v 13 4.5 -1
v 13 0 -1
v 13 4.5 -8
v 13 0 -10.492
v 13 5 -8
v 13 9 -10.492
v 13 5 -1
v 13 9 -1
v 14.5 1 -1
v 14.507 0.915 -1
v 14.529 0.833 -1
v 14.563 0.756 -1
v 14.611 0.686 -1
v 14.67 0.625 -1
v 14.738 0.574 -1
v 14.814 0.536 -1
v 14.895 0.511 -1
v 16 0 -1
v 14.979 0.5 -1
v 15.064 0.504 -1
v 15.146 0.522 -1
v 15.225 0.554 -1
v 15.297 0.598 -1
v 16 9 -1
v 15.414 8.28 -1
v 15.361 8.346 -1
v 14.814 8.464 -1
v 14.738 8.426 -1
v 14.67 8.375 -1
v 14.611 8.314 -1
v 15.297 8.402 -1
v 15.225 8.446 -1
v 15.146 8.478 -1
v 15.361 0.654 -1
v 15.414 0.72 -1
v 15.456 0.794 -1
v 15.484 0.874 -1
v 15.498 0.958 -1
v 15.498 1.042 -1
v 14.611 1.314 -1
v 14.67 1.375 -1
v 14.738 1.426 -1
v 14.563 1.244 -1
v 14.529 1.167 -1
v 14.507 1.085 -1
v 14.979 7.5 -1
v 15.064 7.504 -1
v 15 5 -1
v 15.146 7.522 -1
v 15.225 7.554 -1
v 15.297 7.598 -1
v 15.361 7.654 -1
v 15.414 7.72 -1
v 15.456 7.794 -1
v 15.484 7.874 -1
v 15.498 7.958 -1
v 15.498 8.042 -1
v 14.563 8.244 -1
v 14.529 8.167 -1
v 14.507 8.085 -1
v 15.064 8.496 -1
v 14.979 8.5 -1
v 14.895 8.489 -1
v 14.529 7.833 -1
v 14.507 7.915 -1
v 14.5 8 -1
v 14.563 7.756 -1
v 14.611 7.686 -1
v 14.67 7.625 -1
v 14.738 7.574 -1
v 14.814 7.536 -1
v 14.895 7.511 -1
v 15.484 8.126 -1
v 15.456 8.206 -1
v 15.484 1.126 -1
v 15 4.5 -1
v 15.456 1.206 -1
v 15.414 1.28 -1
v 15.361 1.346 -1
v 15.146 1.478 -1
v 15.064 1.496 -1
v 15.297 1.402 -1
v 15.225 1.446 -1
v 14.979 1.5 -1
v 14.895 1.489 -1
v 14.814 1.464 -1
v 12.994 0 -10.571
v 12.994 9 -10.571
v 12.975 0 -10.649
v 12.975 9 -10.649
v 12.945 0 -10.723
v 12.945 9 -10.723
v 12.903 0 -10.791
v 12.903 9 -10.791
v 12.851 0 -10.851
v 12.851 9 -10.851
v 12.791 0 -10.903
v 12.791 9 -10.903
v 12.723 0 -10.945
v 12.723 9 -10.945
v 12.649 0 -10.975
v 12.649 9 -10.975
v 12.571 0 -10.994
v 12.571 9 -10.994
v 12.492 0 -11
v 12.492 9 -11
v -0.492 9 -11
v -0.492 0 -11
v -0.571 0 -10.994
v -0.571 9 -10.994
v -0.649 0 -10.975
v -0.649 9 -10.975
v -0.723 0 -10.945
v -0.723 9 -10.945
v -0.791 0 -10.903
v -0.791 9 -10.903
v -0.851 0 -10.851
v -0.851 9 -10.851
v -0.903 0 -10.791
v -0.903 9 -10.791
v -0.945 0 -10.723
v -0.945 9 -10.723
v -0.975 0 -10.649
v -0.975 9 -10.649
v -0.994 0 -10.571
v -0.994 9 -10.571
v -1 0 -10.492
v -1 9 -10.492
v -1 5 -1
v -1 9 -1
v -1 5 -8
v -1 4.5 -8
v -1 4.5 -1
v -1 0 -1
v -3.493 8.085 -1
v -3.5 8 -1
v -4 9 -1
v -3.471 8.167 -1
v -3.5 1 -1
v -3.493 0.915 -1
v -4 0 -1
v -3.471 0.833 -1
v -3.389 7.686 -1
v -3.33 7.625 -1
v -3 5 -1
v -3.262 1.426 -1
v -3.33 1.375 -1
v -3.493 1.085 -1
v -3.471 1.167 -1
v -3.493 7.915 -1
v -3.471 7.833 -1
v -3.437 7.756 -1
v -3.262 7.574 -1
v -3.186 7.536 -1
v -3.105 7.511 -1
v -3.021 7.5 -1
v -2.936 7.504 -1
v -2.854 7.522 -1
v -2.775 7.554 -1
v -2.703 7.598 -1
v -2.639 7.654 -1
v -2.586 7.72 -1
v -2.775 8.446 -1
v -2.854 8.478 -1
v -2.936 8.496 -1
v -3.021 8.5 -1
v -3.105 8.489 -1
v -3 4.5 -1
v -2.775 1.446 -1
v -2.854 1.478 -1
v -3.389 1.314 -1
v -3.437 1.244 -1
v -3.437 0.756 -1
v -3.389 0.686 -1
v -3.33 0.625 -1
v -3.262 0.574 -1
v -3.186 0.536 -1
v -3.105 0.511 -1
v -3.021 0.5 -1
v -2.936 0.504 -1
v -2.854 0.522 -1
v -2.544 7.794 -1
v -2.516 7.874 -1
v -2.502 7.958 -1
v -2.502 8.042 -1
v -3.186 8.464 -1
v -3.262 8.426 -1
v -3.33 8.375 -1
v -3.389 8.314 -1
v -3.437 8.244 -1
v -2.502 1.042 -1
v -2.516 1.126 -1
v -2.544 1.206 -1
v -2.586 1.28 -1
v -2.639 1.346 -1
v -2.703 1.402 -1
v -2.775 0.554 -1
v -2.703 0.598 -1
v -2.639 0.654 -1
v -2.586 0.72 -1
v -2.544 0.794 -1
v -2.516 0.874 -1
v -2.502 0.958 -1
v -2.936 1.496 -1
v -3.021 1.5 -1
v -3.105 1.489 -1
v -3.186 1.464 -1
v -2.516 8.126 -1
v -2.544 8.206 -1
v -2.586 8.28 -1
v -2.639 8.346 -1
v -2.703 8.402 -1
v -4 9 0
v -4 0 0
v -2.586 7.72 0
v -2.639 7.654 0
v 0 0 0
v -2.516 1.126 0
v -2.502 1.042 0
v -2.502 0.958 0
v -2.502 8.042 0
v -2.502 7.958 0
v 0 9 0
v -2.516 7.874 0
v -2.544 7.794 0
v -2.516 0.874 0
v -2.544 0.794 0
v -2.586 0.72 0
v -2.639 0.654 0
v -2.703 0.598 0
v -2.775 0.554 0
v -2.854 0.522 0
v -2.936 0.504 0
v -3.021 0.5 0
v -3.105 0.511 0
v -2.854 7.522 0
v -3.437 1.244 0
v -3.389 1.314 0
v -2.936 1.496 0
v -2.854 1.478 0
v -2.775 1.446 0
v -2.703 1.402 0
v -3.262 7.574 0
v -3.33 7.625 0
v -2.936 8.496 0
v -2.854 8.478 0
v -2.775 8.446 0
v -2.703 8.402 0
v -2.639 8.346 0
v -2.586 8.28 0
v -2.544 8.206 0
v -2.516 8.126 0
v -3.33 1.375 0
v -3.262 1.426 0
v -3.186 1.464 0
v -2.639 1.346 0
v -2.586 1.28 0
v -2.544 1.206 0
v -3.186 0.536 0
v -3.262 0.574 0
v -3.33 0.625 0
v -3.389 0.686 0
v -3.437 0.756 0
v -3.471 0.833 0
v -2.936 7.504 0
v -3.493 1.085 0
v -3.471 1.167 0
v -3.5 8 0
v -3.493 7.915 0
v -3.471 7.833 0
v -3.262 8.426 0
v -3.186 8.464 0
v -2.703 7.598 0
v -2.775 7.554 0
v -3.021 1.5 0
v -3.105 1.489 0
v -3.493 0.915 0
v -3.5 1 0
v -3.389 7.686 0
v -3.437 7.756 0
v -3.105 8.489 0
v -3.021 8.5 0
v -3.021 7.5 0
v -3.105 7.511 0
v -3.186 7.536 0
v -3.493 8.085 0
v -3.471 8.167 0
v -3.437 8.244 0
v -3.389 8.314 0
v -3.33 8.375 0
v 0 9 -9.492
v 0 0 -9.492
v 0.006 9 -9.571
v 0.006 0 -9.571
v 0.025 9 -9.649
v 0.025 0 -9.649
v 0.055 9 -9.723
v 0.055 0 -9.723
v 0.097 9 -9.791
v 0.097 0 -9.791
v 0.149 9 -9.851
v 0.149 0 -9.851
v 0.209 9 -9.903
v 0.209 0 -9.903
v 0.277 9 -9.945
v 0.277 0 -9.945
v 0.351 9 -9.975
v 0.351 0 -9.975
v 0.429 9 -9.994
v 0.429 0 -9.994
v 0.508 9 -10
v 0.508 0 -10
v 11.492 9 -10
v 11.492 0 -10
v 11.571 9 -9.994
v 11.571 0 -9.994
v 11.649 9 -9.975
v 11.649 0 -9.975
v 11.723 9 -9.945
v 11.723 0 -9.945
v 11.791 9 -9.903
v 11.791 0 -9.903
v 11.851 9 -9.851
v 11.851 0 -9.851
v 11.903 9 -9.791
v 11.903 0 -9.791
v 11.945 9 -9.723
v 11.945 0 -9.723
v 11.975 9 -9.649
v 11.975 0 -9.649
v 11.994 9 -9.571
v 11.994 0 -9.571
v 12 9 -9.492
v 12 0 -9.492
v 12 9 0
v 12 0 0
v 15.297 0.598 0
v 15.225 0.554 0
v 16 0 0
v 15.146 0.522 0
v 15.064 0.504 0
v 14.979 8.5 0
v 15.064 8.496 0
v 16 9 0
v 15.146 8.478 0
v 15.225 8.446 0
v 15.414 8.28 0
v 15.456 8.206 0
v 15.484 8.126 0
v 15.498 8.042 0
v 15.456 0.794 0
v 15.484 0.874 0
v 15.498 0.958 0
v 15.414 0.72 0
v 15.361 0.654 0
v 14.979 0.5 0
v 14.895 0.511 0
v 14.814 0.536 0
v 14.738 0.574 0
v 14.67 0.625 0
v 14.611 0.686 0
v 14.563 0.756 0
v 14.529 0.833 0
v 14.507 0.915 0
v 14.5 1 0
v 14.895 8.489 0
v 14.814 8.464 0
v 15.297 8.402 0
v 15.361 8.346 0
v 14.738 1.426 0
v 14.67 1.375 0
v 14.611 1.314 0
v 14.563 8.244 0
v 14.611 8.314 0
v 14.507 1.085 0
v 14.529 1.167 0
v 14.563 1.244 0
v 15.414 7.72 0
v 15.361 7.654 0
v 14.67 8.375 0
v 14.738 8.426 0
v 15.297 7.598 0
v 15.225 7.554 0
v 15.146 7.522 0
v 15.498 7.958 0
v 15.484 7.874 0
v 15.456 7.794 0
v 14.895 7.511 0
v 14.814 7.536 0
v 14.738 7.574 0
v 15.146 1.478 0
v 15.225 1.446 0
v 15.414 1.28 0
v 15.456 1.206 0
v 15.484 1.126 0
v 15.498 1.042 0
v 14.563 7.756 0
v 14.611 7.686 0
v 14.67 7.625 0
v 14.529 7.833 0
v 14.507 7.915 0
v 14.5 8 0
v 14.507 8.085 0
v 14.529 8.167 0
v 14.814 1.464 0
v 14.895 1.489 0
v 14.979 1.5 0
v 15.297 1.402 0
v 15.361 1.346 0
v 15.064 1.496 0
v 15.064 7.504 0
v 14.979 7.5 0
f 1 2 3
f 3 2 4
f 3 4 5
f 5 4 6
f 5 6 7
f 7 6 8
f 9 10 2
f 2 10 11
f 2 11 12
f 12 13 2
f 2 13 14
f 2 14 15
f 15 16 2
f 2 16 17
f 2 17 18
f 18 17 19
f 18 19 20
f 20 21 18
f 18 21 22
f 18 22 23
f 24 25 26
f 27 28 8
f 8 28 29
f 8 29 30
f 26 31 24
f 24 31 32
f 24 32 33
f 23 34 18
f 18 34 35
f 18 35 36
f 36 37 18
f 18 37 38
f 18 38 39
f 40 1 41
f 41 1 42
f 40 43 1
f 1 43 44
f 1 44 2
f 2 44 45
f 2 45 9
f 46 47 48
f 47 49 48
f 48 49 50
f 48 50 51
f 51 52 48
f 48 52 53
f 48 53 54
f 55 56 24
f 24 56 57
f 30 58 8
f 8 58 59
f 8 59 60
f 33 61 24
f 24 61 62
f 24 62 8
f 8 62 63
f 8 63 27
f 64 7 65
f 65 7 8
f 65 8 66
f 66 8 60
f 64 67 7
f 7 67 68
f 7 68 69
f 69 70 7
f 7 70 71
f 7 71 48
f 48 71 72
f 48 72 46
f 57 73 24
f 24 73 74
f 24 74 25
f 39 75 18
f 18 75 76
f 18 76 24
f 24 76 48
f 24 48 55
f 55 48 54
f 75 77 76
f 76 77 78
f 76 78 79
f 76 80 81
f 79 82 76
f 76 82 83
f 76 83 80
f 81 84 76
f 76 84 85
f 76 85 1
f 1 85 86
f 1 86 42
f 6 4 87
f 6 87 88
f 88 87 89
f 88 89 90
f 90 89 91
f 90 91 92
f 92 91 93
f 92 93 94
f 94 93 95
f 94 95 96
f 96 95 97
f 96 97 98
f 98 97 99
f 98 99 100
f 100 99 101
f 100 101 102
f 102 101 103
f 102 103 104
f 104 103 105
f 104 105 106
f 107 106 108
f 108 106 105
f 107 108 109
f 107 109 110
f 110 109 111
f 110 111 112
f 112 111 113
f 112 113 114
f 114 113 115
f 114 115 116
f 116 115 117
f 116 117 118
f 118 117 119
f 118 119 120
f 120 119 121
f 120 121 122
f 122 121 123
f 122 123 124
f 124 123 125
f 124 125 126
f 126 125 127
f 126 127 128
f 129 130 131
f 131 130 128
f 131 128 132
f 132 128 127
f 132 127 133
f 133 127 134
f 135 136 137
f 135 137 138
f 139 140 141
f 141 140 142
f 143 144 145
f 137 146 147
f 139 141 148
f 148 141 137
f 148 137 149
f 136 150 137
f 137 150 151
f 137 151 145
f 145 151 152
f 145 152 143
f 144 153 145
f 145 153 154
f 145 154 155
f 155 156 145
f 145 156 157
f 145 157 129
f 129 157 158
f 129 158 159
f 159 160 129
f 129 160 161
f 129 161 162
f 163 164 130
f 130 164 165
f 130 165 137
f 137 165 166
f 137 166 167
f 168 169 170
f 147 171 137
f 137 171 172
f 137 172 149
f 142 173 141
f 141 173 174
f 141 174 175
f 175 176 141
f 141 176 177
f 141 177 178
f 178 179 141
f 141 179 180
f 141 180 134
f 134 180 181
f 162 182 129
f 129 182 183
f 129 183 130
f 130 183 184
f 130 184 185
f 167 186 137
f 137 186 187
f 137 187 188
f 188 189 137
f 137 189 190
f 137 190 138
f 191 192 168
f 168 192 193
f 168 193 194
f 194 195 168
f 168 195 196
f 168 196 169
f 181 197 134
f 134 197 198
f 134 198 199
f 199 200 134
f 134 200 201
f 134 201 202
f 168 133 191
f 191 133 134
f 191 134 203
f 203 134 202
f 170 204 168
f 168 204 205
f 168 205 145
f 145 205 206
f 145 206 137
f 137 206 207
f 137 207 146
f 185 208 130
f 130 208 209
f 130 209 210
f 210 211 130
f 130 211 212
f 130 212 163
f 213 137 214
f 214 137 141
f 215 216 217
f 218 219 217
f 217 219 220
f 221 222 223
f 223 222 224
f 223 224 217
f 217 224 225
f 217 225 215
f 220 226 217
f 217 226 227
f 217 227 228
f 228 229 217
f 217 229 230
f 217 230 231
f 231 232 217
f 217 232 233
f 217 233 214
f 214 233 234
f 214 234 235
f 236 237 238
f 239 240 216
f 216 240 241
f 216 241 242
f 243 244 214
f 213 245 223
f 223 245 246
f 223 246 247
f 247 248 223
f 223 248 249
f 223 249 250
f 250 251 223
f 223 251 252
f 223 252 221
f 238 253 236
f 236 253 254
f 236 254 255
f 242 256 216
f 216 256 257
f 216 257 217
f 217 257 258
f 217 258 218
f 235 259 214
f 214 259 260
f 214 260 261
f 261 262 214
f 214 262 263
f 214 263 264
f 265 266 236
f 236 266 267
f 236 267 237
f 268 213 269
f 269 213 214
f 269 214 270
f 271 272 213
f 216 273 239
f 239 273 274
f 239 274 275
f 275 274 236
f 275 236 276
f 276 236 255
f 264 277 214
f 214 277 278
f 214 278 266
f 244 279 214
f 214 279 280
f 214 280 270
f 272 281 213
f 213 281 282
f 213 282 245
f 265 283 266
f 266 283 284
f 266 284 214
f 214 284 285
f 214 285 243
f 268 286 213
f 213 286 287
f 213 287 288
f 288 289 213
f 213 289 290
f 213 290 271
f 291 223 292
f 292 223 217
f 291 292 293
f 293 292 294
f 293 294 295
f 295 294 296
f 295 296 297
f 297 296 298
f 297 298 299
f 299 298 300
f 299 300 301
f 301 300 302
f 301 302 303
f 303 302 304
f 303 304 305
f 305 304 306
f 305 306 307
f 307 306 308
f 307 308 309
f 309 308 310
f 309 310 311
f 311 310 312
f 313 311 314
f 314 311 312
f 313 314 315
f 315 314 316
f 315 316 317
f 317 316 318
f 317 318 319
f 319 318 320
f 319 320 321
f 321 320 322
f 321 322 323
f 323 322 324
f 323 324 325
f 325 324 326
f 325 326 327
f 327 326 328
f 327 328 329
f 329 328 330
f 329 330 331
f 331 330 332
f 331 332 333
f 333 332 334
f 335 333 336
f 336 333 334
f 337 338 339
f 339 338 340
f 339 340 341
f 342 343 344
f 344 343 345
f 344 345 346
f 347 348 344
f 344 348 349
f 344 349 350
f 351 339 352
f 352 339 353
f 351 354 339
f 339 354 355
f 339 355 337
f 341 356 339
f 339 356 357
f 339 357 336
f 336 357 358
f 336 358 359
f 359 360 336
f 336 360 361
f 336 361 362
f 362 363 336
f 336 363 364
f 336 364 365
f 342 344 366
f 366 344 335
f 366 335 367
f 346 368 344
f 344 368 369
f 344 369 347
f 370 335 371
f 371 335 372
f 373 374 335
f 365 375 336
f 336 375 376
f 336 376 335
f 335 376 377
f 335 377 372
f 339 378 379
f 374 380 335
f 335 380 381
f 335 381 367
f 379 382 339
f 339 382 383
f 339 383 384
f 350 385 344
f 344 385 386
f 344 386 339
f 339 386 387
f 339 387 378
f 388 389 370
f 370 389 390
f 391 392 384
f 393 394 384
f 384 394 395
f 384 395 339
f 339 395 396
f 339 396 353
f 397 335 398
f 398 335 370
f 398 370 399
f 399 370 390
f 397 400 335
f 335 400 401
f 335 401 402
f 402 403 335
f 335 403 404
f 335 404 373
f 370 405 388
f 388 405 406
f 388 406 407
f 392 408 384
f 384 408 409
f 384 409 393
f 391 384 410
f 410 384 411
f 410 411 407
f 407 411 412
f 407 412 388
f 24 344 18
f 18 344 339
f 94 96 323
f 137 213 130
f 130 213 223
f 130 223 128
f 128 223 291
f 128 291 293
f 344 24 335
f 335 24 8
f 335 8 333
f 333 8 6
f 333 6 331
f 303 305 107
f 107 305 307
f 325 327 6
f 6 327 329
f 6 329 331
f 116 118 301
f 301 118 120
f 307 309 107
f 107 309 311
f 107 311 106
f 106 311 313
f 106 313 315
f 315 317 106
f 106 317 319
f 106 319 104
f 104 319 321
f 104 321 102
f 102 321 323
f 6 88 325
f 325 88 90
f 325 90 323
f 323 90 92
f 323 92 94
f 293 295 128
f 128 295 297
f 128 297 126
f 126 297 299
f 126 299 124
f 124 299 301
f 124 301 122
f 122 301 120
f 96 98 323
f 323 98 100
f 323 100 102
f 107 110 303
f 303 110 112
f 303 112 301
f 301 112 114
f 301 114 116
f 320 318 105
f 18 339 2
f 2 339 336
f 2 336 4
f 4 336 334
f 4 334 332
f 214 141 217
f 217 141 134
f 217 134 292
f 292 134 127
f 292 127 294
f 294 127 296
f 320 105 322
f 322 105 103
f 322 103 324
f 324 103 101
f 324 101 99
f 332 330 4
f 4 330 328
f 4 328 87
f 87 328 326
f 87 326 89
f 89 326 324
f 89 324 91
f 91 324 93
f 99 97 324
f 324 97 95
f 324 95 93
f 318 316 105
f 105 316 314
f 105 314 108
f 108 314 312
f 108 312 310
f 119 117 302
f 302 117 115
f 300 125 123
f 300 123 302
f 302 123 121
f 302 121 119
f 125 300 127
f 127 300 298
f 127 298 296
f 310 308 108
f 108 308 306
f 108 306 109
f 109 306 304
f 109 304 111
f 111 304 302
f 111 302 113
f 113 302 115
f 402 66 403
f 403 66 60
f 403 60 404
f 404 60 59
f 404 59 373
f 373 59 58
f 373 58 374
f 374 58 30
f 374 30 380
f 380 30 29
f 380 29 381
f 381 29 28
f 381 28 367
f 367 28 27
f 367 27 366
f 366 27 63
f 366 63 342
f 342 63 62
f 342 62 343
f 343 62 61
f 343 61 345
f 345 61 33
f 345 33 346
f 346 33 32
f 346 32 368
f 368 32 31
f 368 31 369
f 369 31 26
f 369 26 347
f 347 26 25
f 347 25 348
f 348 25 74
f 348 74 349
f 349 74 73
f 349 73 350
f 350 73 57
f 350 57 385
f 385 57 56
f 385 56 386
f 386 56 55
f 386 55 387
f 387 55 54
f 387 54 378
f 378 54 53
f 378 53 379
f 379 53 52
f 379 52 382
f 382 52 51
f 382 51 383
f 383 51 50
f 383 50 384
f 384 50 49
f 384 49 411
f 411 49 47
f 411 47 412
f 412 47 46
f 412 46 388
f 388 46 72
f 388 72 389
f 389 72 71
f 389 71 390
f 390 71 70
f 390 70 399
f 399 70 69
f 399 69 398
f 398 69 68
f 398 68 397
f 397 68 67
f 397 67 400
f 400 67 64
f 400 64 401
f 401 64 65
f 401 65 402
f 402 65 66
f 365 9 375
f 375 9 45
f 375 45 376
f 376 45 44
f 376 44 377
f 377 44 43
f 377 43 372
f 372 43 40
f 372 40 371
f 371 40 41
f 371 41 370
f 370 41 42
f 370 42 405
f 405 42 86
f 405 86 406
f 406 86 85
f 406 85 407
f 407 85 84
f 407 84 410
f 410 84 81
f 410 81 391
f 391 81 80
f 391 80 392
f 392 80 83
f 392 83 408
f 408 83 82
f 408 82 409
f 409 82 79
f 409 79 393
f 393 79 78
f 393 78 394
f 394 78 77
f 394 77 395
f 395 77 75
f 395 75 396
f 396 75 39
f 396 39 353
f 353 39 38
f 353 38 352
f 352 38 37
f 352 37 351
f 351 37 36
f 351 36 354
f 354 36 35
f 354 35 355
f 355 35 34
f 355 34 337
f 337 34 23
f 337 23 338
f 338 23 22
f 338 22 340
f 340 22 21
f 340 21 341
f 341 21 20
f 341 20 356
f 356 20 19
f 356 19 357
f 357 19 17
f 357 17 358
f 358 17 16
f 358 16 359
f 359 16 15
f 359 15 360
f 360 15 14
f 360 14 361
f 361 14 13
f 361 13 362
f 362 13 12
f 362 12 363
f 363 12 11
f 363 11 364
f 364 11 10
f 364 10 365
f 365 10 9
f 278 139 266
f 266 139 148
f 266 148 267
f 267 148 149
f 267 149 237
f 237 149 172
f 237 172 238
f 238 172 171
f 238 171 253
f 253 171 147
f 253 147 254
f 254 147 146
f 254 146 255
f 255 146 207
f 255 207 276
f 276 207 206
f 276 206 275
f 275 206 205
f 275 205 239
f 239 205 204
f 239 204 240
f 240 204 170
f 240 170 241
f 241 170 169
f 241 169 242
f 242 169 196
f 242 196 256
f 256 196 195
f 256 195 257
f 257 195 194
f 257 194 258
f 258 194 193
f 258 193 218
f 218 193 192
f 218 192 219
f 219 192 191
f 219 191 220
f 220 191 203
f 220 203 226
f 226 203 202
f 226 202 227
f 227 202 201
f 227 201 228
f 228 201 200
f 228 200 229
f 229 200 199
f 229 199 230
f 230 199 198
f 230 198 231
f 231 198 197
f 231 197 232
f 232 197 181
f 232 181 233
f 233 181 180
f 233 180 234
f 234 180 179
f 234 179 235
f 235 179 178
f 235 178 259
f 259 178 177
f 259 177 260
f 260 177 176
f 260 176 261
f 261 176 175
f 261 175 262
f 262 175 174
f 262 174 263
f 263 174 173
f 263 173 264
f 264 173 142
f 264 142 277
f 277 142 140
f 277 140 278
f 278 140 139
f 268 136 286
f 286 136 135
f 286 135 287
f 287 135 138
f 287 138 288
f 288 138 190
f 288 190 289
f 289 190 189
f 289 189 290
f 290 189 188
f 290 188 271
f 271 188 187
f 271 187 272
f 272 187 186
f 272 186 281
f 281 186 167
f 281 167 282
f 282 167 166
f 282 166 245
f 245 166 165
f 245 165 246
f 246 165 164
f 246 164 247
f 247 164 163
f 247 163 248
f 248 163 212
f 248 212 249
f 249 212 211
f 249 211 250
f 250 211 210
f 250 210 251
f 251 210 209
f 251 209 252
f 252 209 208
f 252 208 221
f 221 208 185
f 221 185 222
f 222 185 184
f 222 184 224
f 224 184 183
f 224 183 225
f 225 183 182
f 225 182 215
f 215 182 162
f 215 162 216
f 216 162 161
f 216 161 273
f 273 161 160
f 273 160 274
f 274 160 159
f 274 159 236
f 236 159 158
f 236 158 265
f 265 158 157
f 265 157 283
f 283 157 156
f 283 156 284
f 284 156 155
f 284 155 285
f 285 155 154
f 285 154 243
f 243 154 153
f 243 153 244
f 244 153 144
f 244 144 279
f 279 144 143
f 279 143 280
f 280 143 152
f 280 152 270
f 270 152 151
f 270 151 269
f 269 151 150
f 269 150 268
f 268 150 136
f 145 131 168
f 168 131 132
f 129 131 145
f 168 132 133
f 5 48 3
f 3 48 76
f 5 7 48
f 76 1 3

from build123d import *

# Parameters (mm, degrees)
BOSS_EXTRUDE1_DEPTH = 9
SKETCH2_R           = 0.5
CUT_EXTRUDE1_DEPTH  = 9
BOSS_EXTRUDE2_DEPTH = 0.5


with BuildPart() as part:
    # Sketch1 → Boss-Extrude1 (new body)
    with BuildSketch(Plane(origin=(0, 0, 0), x_dir=(1, 0, 0), z_dir=(0, 1, 0))):
        with BuildLine():
            Line((12.508, 0), (14.291457286, 0))
            Line((14.291457286, 0), (16, 0))
            Line((16, 0), (16, 1))
            Line((16, 1), (13.508, 1))
            Line((13.508, 1), (13, 1))
            Line((13, 1), (13, 1.508))
            Line((13, 1.508), (13, 10.492))
            ThreePointArc((13, 10.492), (12.851210245, 10.851210245), (12.492, 11))
            Line((12.492, 11), (-0.492, 11))
            ThreePointArc((-0.492, 11), (-0.851210245, 10.851210245), (-1, 10.492))
            Line((-1, 10.492), (-1, 1.508))
            Line((-1, 1.508), (-1, 1))
            Line((-1, 1), (-1.508, 1))
            Line((-1.508, 1), (-4, 1))
            Line((-4, 1), (-4, 0))
            Line((-4, 0), (-0.904522613, 0))
            Line((-0.904522613, 0), (-0.508, 0))
            Line((-0.508, 0), (0, 0))
            Line((0, 0), (0, 0.508))
            Line((0, 0.508), (0, 9.492))
            ThreePointArc((0, 9.492), (0.148789755, 9.851210245), (0.508, 10))
            Line((0.508, 10), (11.492, 10))
            ThreePointArc((11.492, 10), (11.851210245, 9.851210245), (12, 9.492))
            Line((12, 9.492), (12, 0.508))
            Line((12, 0.508), (12, 0))
            Line((12, 0), (12.508, 0))
        make_face()
    extrude(amount=BOSS_EXTRUDE1_DEPTH)

    # Sketch2 → Cut-Extrude1 (cut)
    with BuildSketch(Plane(origin=(0, 0, -1), x_dir=(-1, 0, 0), z_dir=(0, 0, -1))):
        with Locations((3, 1)):
            Circle(SKETCH2_R)
        with Locations((3, 8)):
            Circle(SKETCH2_R)
        with Locations((-15, 1)):
            Circle(SKETCH2_R)
        with Locations((-15, 8)):
            Circle(SKETCH2_R)
    extrude(amount=-CUT_EXTRUDE1_DEPTH, mode=Mode.SUBTRACT)

    # Sketch3 → Boss-Extrude2 (add)
    with BuildSketch(Plane(origin=(0, 4.50000011, 0), x_dir=(1, 0, 0), z_dir=(0, 1, 0))):
        Polygon((-3, 1), (-1, 8), (-1, 1), align=None)
        Polygon((13, 8), (13, 1), (15, 1), align=None)
    extrude(amount=BOSS_EXTRUDE2_DEPTH)


solid = part.part
